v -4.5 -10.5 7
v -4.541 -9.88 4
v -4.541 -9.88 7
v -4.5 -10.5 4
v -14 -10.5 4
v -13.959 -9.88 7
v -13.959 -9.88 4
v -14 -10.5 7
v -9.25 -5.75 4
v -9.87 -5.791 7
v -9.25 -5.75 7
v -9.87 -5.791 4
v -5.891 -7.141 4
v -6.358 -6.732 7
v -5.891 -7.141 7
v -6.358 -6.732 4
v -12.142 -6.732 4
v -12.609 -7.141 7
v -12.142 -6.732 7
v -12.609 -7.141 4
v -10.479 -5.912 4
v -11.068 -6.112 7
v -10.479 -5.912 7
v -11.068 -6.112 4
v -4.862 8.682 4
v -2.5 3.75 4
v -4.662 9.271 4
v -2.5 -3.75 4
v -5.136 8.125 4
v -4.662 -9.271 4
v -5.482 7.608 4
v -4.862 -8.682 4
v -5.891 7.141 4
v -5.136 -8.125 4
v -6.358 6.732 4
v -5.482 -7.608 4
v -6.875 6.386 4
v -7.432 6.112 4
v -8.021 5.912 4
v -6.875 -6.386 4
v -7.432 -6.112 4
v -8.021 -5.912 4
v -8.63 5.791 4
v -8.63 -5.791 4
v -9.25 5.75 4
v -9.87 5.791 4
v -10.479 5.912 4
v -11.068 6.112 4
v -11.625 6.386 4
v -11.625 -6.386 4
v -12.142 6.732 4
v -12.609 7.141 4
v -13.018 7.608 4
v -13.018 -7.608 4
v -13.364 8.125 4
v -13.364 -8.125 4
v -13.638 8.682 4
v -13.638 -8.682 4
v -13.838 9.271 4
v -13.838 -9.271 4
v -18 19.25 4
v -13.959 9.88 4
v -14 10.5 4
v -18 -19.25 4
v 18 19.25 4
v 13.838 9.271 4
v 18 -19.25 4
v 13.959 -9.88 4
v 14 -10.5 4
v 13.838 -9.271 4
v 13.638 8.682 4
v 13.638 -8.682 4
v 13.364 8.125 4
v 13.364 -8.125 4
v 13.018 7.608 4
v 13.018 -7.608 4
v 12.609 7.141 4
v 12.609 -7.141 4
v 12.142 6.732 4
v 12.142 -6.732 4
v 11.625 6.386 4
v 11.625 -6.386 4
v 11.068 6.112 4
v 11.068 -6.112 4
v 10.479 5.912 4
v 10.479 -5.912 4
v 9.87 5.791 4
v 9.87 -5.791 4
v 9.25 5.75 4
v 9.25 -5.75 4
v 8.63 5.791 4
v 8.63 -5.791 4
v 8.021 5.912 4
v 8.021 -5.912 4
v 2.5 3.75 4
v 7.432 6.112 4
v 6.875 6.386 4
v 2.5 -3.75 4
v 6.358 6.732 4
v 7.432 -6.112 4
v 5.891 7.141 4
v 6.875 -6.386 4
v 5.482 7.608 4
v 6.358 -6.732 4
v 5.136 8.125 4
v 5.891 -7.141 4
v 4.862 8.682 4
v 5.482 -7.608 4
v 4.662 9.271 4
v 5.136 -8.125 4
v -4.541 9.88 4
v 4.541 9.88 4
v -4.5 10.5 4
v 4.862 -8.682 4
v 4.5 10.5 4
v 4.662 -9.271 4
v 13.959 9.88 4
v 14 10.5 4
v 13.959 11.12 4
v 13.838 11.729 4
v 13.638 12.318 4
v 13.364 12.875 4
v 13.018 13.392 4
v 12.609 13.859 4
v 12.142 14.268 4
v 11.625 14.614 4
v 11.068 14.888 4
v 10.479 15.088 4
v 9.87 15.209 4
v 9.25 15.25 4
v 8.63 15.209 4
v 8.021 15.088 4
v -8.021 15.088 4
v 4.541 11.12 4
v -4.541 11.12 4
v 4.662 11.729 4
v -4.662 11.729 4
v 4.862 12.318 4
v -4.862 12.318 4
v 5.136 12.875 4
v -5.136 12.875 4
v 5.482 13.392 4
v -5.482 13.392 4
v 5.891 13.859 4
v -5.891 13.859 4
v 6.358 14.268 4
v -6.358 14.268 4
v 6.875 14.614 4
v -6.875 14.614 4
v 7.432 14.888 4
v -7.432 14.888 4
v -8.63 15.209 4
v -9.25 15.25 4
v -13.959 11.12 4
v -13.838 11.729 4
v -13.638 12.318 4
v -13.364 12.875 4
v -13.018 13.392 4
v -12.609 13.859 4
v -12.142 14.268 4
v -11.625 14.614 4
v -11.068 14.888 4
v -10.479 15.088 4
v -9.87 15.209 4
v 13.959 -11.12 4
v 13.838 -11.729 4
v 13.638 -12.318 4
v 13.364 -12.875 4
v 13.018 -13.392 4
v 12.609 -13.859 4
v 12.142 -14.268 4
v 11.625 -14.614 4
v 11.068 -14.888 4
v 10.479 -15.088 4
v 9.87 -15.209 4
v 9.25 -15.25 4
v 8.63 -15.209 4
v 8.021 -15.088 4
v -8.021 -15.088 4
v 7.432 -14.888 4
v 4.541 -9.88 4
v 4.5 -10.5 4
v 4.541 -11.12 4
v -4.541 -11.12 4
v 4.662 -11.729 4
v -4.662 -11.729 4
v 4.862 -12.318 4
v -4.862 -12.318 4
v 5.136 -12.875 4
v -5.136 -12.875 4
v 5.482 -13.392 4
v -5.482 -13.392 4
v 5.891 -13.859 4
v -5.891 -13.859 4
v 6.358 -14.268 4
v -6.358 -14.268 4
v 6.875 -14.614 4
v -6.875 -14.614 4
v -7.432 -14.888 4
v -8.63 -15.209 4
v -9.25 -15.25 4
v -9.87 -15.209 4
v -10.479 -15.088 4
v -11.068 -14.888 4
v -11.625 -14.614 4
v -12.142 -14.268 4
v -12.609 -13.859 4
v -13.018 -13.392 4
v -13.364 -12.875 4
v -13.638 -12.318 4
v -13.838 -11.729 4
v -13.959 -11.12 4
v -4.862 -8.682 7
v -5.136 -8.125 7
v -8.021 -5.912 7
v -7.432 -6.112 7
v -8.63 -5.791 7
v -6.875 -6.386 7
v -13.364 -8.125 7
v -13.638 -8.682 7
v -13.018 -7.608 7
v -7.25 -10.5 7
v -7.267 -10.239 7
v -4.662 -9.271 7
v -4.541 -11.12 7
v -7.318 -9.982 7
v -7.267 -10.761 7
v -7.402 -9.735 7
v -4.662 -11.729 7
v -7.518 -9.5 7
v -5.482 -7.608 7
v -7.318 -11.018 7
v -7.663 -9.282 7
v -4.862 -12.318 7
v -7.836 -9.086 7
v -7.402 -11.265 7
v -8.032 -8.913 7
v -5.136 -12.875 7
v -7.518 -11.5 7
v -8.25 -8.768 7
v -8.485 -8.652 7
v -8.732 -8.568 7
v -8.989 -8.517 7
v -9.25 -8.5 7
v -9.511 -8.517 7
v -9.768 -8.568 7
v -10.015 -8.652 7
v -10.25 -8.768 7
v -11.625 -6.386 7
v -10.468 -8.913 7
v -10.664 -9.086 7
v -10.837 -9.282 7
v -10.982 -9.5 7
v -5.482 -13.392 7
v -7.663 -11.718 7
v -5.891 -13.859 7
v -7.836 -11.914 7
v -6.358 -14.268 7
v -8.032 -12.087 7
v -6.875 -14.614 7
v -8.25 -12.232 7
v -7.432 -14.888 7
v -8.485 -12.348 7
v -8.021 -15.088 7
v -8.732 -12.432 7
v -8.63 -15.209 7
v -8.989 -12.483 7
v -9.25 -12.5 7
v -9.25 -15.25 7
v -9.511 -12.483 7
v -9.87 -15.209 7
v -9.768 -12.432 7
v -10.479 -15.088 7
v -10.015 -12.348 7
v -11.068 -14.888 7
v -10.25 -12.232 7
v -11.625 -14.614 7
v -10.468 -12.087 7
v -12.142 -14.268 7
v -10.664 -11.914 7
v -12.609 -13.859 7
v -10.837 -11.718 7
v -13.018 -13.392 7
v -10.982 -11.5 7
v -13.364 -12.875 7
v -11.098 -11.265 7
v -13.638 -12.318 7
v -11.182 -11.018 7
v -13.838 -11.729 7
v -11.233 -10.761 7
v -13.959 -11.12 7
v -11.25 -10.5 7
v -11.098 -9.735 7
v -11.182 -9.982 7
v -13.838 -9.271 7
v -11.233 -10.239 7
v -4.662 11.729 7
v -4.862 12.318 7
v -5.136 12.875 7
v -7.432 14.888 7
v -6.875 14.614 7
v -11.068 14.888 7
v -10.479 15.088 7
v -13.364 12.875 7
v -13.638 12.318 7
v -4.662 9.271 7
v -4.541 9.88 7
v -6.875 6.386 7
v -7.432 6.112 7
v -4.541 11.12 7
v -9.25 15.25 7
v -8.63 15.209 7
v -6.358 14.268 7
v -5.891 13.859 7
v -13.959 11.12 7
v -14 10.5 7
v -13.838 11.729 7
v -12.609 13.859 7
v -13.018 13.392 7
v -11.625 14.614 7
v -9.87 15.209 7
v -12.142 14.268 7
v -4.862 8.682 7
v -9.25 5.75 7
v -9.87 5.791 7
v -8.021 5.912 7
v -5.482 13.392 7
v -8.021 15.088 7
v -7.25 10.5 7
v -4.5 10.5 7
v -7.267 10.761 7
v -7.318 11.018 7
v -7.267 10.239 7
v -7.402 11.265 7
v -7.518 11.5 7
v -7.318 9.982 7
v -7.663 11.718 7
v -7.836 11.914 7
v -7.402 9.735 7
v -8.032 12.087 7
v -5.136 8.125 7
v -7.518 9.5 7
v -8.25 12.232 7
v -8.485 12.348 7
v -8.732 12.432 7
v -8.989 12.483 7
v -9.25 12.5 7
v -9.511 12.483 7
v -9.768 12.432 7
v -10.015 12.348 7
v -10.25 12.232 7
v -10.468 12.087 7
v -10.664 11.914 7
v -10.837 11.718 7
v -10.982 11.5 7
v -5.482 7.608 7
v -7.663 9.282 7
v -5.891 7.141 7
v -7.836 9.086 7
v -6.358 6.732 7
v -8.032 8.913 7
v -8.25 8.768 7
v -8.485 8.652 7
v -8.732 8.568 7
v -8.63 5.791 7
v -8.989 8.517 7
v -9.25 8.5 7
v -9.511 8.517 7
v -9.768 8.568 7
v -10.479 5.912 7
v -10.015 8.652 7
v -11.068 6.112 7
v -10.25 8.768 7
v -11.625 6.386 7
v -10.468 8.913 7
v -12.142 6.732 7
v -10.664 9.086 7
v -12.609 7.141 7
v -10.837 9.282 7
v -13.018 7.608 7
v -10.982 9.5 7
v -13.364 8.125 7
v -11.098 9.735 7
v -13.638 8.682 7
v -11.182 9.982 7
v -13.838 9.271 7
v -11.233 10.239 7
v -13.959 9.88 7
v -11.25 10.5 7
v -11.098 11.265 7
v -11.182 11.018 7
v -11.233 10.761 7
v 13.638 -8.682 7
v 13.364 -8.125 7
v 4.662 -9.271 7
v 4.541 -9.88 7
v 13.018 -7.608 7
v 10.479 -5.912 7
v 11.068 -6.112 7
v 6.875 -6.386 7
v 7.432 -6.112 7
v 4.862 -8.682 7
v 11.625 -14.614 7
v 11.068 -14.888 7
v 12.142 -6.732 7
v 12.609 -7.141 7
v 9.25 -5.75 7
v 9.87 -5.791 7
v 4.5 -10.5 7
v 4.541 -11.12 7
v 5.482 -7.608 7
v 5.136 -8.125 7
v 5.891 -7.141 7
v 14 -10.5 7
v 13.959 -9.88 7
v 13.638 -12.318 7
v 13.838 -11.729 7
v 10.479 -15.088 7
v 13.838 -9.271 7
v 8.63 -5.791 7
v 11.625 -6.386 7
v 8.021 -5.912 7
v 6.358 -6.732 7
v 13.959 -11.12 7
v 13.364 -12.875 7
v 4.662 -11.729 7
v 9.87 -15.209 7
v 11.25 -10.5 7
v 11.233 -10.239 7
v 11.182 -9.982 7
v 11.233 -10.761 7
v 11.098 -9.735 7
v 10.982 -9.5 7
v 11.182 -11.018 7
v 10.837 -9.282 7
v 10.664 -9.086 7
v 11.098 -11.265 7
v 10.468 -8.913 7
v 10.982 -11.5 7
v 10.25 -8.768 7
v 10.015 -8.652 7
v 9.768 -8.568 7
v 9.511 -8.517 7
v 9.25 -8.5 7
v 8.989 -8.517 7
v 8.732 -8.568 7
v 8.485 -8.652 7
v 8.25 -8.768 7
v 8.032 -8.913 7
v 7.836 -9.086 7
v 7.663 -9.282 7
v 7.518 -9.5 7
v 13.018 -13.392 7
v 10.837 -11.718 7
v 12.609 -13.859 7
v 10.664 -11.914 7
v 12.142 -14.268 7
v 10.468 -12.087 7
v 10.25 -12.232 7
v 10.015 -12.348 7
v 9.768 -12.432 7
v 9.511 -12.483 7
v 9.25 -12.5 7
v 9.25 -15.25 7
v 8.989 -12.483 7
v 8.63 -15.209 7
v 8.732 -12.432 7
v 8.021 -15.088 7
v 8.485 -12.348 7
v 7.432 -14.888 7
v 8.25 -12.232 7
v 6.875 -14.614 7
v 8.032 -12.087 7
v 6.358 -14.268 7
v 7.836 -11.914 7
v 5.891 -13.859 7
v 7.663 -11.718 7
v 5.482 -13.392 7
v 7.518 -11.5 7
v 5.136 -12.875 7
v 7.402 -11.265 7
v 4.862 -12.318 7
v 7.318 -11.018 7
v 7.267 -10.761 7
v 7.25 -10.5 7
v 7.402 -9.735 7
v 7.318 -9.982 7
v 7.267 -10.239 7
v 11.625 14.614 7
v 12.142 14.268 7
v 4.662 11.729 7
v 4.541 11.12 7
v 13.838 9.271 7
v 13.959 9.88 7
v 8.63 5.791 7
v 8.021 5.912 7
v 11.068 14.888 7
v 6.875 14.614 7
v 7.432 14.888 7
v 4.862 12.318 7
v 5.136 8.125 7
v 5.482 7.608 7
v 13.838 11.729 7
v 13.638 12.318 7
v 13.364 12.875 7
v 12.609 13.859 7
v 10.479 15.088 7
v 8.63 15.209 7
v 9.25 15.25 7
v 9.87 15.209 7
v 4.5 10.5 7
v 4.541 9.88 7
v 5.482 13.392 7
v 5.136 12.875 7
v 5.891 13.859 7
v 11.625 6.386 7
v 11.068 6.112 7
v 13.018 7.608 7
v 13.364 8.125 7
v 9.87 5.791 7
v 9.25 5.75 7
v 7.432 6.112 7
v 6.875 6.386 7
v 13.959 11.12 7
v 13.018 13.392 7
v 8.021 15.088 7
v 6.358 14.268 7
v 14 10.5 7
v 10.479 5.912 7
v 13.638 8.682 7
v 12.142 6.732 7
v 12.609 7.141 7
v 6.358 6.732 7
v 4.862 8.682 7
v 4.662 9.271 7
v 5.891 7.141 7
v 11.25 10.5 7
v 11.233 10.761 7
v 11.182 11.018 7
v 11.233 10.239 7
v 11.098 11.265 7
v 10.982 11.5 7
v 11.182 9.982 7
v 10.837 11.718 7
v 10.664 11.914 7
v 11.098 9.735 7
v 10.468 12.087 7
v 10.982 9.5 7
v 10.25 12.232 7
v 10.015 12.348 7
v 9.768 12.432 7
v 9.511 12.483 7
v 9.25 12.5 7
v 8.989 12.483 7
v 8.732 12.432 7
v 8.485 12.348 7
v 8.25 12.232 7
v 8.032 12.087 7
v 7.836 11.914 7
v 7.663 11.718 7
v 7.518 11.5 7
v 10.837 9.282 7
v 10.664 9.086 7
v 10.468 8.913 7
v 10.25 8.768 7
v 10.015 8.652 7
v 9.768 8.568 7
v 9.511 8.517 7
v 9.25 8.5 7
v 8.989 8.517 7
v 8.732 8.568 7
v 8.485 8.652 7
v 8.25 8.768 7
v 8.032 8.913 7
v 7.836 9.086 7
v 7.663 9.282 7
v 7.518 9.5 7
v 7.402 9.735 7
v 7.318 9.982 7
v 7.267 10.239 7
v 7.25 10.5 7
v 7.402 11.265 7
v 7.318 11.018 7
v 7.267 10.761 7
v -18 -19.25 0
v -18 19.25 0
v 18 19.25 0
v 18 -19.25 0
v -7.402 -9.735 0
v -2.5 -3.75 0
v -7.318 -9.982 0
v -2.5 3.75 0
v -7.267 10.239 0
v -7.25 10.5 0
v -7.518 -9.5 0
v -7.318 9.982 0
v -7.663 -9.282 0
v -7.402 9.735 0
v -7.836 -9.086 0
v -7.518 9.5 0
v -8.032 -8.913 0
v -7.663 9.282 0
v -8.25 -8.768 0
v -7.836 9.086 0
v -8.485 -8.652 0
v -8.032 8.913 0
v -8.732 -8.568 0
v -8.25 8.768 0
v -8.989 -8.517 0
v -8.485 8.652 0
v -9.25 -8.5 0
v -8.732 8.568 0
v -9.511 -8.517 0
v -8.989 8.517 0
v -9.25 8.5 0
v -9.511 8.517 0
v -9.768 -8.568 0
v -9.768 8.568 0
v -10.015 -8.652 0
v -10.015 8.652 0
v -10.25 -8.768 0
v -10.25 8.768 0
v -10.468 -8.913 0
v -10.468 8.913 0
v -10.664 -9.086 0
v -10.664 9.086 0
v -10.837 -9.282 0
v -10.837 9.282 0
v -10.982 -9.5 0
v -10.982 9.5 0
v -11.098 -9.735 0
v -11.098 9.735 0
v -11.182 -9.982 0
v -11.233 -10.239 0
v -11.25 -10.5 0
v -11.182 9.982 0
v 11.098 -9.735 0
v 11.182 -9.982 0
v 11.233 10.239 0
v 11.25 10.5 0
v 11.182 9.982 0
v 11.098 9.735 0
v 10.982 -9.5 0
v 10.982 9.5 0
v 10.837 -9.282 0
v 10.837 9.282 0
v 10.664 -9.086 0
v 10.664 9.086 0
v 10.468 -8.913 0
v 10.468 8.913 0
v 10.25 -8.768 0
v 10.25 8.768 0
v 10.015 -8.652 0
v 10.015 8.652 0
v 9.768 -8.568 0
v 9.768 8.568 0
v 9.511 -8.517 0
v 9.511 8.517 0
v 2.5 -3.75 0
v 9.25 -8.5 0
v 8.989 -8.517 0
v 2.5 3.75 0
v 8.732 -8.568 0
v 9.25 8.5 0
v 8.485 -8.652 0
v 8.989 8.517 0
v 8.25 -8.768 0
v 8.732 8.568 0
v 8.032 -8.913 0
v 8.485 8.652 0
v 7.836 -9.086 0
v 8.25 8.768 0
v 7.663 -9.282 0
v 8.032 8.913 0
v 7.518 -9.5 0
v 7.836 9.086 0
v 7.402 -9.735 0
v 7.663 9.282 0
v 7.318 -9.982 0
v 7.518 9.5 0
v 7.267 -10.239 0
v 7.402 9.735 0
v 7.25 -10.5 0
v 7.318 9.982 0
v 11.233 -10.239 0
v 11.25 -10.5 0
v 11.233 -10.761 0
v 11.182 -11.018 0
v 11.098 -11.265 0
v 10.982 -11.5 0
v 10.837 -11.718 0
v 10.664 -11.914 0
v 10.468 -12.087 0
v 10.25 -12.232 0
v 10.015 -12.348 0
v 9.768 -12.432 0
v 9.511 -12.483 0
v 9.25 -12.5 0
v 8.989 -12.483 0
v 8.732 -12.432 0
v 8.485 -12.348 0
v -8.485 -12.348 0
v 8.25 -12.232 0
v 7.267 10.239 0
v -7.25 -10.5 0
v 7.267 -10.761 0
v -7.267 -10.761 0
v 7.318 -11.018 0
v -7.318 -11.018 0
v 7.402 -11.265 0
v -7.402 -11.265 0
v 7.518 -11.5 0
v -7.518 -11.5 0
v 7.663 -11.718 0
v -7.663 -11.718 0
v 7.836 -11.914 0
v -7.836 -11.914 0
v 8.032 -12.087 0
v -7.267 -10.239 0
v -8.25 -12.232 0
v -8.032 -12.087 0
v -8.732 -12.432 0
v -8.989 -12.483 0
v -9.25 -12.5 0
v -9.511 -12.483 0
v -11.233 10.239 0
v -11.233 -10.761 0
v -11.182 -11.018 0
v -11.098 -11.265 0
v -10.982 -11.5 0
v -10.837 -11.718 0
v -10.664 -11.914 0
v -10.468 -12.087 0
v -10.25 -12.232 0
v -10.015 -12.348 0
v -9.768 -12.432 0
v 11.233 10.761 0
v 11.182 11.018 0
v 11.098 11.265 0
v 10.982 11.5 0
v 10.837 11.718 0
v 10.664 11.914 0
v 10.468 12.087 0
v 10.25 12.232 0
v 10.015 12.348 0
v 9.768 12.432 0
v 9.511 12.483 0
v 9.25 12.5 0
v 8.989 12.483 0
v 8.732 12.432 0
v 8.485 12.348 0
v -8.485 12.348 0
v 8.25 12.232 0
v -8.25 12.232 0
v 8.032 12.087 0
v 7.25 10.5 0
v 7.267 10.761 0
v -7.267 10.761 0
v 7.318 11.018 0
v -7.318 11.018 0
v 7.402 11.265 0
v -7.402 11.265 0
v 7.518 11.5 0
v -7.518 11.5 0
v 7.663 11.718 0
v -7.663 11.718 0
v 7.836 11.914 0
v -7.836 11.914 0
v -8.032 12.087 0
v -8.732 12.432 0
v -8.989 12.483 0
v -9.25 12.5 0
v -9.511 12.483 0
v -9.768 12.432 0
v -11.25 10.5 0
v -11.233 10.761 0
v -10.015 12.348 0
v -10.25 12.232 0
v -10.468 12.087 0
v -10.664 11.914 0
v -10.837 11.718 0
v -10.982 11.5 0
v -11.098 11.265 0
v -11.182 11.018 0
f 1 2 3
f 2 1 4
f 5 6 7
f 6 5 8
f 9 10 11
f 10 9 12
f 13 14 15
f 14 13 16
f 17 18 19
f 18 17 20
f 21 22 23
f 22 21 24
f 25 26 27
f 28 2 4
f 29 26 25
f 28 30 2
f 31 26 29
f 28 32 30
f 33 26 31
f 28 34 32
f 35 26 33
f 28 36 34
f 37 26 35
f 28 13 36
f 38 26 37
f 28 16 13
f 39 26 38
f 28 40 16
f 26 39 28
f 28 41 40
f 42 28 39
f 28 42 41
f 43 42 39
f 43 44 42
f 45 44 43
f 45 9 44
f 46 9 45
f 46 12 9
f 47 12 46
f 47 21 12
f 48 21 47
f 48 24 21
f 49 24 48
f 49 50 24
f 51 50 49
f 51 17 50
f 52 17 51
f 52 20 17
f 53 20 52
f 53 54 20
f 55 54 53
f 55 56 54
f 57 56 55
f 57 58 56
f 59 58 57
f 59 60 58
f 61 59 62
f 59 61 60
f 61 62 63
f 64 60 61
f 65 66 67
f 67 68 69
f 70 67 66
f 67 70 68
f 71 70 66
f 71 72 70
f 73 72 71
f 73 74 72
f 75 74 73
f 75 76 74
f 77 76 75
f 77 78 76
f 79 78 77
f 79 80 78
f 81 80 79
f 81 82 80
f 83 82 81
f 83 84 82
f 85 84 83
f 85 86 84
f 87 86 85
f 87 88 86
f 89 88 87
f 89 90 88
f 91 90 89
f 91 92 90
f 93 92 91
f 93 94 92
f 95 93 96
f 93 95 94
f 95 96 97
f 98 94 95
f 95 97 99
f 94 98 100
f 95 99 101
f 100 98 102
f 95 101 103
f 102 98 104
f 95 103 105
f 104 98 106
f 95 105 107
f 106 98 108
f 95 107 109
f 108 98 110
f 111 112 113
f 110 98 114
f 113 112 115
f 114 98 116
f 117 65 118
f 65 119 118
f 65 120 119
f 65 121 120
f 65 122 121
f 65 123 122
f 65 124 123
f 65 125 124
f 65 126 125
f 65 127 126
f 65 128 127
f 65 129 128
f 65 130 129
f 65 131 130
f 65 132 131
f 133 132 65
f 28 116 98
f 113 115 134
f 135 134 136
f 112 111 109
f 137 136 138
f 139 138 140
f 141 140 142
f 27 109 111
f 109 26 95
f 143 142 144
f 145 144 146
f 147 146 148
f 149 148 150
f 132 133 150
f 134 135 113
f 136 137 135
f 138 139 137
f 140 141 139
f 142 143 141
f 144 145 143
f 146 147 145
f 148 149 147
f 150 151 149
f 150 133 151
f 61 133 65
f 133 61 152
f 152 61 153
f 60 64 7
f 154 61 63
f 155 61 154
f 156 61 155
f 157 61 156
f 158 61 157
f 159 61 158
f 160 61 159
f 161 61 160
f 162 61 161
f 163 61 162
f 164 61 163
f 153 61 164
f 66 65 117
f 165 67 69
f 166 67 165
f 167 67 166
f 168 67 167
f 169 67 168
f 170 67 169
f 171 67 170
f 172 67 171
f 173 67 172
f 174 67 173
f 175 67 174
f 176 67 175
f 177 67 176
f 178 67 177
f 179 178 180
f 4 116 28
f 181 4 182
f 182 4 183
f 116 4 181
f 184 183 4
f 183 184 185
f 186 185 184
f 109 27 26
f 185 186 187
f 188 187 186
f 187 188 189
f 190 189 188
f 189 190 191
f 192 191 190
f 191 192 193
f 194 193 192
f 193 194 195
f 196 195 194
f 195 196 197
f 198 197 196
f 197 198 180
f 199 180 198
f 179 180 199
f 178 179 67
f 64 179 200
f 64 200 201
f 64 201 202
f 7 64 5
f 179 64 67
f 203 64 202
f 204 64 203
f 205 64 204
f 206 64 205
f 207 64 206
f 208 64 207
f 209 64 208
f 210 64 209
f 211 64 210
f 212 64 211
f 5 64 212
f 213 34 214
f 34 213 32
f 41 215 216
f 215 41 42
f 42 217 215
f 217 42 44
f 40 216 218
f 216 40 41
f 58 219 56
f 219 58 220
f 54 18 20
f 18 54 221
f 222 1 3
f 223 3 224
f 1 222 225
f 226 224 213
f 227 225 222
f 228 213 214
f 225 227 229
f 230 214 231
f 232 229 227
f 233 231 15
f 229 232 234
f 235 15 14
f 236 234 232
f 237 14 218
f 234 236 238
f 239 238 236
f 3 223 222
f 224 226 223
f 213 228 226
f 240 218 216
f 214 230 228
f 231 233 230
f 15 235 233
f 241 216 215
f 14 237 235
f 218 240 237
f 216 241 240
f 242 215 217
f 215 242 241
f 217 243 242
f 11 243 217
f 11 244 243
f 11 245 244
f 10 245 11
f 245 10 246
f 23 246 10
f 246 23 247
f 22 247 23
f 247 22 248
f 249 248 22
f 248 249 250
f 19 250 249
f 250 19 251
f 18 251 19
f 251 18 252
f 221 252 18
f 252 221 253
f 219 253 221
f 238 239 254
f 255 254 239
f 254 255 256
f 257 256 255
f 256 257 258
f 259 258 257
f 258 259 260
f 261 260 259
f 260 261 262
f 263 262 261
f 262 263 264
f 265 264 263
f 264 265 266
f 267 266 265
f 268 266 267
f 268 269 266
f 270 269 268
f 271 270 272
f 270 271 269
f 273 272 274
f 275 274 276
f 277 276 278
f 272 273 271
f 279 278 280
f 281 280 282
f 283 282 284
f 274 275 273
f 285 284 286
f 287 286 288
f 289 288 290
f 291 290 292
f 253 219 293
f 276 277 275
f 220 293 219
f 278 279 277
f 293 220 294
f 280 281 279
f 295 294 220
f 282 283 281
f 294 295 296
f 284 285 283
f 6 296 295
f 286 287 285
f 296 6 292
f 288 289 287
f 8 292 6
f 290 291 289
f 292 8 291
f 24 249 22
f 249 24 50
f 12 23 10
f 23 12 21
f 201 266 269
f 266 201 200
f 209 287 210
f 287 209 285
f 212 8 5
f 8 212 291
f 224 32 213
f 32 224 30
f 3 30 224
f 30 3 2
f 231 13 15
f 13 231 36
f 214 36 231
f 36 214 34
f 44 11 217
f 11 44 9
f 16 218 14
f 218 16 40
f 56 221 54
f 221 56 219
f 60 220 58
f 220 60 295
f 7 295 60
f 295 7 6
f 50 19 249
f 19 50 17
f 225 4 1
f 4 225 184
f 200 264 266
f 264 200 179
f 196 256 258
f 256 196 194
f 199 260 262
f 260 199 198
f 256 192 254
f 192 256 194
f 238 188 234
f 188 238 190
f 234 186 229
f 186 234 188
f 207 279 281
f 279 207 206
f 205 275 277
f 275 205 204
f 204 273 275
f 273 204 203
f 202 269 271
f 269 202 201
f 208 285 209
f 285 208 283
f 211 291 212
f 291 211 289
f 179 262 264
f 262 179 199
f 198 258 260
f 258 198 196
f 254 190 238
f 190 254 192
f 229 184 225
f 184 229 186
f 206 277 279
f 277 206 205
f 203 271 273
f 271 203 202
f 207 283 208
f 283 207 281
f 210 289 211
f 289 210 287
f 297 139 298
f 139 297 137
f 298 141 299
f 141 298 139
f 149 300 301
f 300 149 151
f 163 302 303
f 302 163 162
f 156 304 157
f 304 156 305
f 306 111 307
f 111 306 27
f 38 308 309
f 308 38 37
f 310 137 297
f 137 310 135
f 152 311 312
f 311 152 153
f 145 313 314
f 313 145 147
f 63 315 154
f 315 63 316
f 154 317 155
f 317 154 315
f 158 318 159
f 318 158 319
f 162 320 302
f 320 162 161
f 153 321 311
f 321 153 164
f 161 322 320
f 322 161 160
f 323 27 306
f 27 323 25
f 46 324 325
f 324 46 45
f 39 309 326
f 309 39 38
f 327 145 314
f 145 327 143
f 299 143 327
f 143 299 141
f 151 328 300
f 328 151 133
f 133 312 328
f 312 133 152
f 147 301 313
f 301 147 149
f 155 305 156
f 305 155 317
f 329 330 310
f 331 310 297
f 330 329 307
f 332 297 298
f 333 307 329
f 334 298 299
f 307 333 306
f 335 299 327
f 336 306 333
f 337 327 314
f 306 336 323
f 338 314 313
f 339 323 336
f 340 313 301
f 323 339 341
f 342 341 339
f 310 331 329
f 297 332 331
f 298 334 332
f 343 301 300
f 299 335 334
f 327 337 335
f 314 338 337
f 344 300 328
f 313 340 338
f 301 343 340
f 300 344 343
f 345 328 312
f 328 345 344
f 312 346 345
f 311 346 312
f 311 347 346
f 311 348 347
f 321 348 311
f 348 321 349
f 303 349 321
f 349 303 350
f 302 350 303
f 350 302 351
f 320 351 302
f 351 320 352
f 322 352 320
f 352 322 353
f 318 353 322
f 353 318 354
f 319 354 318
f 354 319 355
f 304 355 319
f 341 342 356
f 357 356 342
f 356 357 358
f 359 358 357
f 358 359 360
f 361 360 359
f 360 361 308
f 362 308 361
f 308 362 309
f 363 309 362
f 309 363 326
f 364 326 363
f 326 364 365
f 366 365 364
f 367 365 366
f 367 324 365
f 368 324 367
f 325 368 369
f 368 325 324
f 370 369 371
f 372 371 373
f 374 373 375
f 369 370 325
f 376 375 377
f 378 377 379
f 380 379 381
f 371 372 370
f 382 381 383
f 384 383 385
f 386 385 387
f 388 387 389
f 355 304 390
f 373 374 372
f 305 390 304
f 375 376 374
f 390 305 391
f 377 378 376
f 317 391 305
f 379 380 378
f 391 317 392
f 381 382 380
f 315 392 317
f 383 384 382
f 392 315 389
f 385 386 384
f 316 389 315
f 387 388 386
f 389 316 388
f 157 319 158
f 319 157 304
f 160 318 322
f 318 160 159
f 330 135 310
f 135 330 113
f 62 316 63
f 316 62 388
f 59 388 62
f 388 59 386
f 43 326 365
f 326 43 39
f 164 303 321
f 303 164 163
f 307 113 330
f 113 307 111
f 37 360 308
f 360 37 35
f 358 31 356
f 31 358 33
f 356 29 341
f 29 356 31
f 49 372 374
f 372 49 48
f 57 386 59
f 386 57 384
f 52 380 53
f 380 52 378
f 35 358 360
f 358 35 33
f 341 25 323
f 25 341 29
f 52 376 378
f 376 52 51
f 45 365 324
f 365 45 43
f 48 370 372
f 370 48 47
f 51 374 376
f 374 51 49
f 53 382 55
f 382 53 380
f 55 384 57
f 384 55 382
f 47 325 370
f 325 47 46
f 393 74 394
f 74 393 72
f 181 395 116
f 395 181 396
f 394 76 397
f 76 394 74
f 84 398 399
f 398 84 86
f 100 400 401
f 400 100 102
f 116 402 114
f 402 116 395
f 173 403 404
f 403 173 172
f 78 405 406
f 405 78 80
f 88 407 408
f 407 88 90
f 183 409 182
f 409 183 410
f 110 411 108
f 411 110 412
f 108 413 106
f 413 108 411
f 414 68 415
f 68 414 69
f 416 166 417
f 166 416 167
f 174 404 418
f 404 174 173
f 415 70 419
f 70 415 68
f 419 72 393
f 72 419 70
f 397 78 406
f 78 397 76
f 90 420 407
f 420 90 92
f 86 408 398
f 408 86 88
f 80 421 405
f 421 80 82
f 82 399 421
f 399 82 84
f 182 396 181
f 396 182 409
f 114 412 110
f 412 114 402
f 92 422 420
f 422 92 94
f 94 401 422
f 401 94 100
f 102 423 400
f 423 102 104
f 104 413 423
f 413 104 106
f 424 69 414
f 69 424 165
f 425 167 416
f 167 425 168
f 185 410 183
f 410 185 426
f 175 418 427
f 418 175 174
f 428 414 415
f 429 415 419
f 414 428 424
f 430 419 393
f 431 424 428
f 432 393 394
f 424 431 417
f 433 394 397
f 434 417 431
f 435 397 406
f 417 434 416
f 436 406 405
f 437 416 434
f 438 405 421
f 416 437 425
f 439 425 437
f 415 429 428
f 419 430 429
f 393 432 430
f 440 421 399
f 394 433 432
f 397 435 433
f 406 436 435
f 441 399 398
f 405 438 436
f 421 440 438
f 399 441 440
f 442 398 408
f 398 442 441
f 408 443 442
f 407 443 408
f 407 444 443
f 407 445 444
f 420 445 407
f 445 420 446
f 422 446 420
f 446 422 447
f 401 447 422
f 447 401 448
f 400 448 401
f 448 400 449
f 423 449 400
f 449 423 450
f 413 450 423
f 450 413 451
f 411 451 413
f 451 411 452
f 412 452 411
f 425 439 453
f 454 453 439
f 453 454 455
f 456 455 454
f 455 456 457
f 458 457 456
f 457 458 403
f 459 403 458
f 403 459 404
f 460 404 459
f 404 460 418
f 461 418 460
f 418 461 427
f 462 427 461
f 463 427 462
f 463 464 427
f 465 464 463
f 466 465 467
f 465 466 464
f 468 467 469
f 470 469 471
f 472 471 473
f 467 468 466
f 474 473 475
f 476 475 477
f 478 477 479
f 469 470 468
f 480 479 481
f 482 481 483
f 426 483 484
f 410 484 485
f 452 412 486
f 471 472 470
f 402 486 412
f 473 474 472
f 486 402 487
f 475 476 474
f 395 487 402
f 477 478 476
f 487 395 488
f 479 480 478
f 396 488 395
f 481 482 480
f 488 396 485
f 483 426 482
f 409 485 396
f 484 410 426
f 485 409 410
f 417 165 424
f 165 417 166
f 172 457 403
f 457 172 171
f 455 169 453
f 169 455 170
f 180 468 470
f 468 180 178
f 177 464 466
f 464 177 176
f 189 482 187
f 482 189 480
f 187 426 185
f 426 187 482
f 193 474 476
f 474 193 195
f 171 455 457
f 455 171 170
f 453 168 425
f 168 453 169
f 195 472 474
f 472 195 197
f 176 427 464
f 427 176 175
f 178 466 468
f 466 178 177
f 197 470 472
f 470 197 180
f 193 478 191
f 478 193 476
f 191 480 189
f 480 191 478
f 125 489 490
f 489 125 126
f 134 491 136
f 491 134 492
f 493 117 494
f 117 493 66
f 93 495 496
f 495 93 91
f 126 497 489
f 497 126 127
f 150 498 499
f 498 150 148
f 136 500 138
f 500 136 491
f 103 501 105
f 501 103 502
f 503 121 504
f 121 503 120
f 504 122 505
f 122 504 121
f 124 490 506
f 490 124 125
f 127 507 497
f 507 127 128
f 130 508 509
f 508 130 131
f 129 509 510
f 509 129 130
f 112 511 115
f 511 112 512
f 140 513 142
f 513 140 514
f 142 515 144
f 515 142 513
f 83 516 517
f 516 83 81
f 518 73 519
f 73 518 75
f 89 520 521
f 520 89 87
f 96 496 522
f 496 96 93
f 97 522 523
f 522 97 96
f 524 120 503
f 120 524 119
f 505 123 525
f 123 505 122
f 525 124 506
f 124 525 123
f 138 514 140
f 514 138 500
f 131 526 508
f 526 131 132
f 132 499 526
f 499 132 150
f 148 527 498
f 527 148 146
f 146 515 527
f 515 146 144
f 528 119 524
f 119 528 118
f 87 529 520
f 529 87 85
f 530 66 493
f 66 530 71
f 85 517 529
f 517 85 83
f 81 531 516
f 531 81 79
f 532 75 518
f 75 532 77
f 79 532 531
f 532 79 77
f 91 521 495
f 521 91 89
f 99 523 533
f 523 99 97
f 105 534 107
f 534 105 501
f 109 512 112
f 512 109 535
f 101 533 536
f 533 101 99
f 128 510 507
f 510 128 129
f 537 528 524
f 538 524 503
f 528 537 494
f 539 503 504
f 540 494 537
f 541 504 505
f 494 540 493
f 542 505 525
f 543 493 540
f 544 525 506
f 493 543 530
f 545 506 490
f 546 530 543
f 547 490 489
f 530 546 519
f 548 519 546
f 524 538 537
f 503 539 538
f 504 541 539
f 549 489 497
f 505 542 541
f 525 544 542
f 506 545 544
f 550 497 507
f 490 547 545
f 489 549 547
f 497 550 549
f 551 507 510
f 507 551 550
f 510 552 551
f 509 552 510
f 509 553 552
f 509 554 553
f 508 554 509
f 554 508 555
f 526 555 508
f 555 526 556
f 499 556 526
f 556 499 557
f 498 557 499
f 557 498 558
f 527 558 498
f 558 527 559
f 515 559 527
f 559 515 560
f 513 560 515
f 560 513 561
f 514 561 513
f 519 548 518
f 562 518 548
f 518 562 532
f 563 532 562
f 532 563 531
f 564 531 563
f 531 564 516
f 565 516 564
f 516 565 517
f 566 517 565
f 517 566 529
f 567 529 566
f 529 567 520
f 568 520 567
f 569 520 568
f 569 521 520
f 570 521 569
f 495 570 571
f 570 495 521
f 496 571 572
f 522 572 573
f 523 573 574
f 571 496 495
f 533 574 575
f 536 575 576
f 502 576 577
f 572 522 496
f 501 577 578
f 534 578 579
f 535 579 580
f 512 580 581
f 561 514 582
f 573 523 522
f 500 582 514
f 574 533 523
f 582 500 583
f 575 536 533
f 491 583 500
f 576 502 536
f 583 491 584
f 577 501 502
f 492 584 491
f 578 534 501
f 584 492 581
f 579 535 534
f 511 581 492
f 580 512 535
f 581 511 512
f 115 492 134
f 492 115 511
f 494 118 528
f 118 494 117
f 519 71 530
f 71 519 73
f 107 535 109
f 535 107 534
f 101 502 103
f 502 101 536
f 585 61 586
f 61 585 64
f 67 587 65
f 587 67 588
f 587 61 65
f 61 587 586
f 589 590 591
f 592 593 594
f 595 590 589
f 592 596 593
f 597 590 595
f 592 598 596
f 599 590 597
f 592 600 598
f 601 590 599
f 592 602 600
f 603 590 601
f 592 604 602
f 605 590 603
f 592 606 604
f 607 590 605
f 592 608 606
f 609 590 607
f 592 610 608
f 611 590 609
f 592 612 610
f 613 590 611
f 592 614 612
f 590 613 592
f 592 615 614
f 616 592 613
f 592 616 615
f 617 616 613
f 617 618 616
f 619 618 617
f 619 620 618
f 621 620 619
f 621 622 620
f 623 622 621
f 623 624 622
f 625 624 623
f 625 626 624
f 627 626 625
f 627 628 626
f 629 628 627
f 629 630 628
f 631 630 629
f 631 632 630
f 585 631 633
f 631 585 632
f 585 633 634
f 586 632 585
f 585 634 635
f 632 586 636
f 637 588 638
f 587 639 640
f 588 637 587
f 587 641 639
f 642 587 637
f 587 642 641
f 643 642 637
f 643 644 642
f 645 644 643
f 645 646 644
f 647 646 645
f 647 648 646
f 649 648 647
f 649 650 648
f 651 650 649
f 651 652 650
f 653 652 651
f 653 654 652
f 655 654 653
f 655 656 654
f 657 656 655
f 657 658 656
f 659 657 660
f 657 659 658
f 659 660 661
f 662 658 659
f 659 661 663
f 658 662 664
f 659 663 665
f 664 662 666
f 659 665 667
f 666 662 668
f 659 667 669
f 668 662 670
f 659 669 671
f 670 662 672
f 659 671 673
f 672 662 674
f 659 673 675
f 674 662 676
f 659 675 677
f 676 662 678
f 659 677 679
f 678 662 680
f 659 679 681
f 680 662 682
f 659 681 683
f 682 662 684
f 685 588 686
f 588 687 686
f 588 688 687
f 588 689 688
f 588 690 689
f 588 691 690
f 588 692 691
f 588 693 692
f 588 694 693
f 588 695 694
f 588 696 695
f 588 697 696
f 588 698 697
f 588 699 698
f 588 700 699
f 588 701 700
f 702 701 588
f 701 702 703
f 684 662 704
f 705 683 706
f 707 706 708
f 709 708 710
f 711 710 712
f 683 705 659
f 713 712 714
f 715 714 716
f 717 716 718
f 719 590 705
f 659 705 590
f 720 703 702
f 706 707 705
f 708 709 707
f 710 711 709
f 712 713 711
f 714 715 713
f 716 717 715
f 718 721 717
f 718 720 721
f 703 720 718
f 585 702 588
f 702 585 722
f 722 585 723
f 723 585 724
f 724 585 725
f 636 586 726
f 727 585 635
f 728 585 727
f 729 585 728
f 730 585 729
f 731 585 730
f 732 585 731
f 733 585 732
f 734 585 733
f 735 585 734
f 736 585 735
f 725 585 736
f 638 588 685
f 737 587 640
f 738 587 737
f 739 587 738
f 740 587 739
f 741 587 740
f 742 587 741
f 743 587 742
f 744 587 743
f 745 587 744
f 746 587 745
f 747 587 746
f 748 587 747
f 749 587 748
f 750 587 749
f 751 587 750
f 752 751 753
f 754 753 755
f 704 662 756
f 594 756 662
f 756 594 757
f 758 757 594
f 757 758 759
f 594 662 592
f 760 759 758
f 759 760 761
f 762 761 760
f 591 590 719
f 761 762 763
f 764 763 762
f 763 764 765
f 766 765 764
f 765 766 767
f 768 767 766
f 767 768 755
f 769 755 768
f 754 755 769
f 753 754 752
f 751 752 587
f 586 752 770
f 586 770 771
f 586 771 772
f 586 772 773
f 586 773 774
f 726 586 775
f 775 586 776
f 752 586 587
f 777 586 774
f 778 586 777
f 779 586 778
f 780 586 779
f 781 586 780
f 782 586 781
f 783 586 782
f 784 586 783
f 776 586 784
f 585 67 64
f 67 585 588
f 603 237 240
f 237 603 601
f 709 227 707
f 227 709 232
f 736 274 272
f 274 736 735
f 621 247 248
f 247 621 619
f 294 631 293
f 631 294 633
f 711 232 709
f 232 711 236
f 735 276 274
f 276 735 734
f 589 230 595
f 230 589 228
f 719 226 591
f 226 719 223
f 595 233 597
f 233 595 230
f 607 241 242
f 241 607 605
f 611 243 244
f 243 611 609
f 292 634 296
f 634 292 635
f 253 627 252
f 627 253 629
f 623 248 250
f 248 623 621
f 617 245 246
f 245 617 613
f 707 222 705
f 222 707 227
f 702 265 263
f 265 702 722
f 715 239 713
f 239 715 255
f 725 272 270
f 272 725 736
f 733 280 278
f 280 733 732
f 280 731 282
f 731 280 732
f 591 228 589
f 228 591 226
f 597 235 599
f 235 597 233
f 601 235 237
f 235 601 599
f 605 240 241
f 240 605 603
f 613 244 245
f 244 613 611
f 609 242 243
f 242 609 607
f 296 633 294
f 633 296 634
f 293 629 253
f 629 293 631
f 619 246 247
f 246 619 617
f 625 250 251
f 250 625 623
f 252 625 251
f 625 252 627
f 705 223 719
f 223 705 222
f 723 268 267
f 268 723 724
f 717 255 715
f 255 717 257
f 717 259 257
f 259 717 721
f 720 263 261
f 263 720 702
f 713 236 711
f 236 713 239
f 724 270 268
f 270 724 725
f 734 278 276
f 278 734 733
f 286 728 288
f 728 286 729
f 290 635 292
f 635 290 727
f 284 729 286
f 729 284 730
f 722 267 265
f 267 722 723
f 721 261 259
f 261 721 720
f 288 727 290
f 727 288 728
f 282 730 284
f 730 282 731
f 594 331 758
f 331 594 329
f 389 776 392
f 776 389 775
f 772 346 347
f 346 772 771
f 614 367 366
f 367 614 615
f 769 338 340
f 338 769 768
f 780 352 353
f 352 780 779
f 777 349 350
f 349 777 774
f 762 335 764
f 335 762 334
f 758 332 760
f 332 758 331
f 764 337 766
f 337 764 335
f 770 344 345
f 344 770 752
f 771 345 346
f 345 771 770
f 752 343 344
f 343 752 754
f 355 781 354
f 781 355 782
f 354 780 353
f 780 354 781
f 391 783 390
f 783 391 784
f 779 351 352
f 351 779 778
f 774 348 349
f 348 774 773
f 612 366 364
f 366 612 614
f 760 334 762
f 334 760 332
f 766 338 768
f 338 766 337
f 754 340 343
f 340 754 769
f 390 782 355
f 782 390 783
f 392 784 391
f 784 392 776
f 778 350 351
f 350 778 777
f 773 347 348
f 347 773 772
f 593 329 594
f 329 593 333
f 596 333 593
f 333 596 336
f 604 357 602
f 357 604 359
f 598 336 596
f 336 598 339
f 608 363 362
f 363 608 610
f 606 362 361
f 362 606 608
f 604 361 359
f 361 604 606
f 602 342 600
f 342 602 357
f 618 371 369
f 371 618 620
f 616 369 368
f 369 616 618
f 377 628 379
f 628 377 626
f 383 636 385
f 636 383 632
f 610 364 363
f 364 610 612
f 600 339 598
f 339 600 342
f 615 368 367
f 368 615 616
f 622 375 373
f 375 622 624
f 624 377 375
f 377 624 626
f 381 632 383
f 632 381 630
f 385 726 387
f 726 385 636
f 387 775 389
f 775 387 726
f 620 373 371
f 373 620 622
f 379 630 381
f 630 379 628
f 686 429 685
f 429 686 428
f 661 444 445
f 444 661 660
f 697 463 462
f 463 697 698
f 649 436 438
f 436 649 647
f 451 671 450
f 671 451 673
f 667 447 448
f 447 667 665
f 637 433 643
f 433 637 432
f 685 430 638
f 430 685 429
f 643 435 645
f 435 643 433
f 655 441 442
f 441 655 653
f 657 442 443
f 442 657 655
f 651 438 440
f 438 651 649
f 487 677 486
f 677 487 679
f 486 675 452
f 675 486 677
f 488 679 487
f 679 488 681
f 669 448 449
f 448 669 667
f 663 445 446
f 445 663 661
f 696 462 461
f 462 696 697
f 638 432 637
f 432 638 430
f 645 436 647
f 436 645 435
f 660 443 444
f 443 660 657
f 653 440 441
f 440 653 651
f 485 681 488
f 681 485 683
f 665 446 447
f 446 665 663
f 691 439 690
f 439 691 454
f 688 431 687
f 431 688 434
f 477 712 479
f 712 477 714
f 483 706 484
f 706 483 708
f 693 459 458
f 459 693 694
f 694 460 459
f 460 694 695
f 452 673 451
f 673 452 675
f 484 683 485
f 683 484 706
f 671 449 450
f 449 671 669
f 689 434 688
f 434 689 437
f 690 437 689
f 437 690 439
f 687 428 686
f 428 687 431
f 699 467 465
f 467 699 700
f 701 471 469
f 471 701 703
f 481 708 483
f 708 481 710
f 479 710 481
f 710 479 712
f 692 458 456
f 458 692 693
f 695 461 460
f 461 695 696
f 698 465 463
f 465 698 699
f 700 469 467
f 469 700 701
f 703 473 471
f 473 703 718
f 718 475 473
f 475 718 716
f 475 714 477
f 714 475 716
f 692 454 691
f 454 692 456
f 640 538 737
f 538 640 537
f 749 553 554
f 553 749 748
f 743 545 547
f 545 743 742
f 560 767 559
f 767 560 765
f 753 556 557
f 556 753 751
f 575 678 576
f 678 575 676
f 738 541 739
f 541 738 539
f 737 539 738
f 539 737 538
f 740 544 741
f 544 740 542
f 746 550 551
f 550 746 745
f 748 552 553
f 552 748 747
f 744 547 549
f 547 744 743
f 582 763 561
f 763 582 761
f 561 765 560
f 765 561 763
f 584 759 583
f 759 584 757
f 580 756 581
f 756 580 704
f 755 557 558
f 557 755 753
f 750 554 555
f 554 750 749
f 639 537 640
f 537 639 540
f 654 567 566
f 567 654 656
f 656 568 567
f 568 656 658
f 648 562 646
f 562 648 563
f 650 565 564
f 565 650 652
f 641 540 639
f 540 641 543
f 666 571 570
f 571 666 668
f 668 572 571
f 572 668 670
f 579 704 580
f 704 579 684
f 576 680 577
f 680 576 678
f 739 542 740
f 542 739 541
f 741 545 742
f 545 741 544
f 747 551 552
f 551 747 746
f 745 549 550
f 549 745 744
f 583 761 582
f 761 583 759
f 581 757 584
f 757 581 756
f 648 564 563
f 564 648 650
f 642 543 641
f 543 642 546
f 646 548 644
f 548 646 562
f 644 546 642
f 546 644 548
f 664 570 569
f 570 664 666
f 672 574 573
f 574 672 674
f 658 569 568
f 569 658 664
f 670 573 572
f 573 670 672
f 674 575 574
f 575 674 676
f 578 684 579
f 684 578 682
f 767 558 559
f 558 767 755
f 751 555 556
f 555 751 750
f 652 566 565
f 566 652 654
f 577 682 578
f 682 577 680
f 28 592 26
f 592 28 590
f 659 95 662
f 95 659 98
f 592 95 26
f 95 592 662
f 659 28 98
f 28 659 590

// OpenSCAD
// Pavois — Eprouvette DEDIEE : 4 trous de fixation IMU Adafruit BNO085.
// Motif RECTANGULAIRE 18.5 x 21 mm (entraxe X = 18.5, entraxe Y = 21) : ce
// n'est PAS un carre (corrige le 2026-07-28), et l'entraxe X est passe de 19
// a 18.5 le 2026-07-31 apres essai imprime (colonnes trop ecartees de 0.5mm).
// Trous ~2.5mm (vis M2.5) -> insert
// M2.5, memes dimensions que les inserts Pi de camera_mount_v2_pi25.scad
// (alesage 4.0mm, bossage 9.5mm / 3mm de haut).
//
// Style "cadre" comme holes_test.scad : bord de matiere autour des bossages,
// centre evide -> juste un test d'entraxe + tenue d'insert, impression rapide.
// A confirmer par mesure au pied a coulisse de la carte reelle avant de figer
// le motif sur le support final.
//
// Impression : face (z=0) sur le plateau, bossages vers le haut, pas de
// support necessaire.

/* ===== Motif des trous IMU BNO085 ===== */
imu_dx = 18.5;            // entraxe X : corrige 19 -> 18.5, les 2 colonnes
                          // etaient 0.5 mm trop ecartees sur l'essai imprime
imu_dy = 21;              // entraxe Y : colonnes bien alignees, valeur validee
imu_hx = imu_dx / 2;
imu_hy = imu_dy / 2;

/* ===== Inserts M2.5 (identiques au Pi, pi25) ===== */
insert_hole_d = 4.0;      // alesage = d3 conseille fiche fournisseur
boss_d        = 9.5;
boss_h        = 3;

plate_t    = 4;
m          = 4;           // largeur du bord de matiere autour des bossages
wall_clear = 2;           // jeu entre le bord interieur evide et les bossages
eps        = 0.1;
$fn        = 48;

module imu_holes_test() {
    // rectangle exterieur (bord du cadre)
    ox0 = -imu_hx - boss_d/2 - m;  ox1 = imu_hx + boss_d/2 + m;
    oy0 = -imu_hy - boss_d/2 - m;  oy1 = imu_hy + boss_d/2 + m;
    // rectangle interieur (evidement central)
    ix0 = -imu_hx + boss_d/2 + wall_clear;  ix1 = imu_hx - boss_d/2 - wall_clear;
    iy0 = -imu_hy + boss_d/2 + wall_clear;  iy1 = imu_hy - boss_d/2 - wall_clear;

    difference() {
        union() {
            translate([ox0, oy0, 0])
                cube([ox1 - ox0, oy1 - oy0, plate_t]);
            for (sx = [-1, 1], sy = [-1, 1])
                translate([sx*imu_hx, sy*imu_hy, plate_t])
                    cylinder(d = boss_d, h = boss_h);
        }
        if (ix1 > ix0 && iy1 > iy0)
            translate([ix0, iy0, -eps])
                cube([ix1 - ix0, iy1 - iy0, plate_t + 2*eps]);
        for (sx = [-1, 1], sy = [-1, 1])
            translate([sx*imu_hx, sy*imu_hy, -eps])
                cylinder(d = insert_hole_d, h = plate_t + boss_h + 2*eps);
    }
}

imu_holes_test();
